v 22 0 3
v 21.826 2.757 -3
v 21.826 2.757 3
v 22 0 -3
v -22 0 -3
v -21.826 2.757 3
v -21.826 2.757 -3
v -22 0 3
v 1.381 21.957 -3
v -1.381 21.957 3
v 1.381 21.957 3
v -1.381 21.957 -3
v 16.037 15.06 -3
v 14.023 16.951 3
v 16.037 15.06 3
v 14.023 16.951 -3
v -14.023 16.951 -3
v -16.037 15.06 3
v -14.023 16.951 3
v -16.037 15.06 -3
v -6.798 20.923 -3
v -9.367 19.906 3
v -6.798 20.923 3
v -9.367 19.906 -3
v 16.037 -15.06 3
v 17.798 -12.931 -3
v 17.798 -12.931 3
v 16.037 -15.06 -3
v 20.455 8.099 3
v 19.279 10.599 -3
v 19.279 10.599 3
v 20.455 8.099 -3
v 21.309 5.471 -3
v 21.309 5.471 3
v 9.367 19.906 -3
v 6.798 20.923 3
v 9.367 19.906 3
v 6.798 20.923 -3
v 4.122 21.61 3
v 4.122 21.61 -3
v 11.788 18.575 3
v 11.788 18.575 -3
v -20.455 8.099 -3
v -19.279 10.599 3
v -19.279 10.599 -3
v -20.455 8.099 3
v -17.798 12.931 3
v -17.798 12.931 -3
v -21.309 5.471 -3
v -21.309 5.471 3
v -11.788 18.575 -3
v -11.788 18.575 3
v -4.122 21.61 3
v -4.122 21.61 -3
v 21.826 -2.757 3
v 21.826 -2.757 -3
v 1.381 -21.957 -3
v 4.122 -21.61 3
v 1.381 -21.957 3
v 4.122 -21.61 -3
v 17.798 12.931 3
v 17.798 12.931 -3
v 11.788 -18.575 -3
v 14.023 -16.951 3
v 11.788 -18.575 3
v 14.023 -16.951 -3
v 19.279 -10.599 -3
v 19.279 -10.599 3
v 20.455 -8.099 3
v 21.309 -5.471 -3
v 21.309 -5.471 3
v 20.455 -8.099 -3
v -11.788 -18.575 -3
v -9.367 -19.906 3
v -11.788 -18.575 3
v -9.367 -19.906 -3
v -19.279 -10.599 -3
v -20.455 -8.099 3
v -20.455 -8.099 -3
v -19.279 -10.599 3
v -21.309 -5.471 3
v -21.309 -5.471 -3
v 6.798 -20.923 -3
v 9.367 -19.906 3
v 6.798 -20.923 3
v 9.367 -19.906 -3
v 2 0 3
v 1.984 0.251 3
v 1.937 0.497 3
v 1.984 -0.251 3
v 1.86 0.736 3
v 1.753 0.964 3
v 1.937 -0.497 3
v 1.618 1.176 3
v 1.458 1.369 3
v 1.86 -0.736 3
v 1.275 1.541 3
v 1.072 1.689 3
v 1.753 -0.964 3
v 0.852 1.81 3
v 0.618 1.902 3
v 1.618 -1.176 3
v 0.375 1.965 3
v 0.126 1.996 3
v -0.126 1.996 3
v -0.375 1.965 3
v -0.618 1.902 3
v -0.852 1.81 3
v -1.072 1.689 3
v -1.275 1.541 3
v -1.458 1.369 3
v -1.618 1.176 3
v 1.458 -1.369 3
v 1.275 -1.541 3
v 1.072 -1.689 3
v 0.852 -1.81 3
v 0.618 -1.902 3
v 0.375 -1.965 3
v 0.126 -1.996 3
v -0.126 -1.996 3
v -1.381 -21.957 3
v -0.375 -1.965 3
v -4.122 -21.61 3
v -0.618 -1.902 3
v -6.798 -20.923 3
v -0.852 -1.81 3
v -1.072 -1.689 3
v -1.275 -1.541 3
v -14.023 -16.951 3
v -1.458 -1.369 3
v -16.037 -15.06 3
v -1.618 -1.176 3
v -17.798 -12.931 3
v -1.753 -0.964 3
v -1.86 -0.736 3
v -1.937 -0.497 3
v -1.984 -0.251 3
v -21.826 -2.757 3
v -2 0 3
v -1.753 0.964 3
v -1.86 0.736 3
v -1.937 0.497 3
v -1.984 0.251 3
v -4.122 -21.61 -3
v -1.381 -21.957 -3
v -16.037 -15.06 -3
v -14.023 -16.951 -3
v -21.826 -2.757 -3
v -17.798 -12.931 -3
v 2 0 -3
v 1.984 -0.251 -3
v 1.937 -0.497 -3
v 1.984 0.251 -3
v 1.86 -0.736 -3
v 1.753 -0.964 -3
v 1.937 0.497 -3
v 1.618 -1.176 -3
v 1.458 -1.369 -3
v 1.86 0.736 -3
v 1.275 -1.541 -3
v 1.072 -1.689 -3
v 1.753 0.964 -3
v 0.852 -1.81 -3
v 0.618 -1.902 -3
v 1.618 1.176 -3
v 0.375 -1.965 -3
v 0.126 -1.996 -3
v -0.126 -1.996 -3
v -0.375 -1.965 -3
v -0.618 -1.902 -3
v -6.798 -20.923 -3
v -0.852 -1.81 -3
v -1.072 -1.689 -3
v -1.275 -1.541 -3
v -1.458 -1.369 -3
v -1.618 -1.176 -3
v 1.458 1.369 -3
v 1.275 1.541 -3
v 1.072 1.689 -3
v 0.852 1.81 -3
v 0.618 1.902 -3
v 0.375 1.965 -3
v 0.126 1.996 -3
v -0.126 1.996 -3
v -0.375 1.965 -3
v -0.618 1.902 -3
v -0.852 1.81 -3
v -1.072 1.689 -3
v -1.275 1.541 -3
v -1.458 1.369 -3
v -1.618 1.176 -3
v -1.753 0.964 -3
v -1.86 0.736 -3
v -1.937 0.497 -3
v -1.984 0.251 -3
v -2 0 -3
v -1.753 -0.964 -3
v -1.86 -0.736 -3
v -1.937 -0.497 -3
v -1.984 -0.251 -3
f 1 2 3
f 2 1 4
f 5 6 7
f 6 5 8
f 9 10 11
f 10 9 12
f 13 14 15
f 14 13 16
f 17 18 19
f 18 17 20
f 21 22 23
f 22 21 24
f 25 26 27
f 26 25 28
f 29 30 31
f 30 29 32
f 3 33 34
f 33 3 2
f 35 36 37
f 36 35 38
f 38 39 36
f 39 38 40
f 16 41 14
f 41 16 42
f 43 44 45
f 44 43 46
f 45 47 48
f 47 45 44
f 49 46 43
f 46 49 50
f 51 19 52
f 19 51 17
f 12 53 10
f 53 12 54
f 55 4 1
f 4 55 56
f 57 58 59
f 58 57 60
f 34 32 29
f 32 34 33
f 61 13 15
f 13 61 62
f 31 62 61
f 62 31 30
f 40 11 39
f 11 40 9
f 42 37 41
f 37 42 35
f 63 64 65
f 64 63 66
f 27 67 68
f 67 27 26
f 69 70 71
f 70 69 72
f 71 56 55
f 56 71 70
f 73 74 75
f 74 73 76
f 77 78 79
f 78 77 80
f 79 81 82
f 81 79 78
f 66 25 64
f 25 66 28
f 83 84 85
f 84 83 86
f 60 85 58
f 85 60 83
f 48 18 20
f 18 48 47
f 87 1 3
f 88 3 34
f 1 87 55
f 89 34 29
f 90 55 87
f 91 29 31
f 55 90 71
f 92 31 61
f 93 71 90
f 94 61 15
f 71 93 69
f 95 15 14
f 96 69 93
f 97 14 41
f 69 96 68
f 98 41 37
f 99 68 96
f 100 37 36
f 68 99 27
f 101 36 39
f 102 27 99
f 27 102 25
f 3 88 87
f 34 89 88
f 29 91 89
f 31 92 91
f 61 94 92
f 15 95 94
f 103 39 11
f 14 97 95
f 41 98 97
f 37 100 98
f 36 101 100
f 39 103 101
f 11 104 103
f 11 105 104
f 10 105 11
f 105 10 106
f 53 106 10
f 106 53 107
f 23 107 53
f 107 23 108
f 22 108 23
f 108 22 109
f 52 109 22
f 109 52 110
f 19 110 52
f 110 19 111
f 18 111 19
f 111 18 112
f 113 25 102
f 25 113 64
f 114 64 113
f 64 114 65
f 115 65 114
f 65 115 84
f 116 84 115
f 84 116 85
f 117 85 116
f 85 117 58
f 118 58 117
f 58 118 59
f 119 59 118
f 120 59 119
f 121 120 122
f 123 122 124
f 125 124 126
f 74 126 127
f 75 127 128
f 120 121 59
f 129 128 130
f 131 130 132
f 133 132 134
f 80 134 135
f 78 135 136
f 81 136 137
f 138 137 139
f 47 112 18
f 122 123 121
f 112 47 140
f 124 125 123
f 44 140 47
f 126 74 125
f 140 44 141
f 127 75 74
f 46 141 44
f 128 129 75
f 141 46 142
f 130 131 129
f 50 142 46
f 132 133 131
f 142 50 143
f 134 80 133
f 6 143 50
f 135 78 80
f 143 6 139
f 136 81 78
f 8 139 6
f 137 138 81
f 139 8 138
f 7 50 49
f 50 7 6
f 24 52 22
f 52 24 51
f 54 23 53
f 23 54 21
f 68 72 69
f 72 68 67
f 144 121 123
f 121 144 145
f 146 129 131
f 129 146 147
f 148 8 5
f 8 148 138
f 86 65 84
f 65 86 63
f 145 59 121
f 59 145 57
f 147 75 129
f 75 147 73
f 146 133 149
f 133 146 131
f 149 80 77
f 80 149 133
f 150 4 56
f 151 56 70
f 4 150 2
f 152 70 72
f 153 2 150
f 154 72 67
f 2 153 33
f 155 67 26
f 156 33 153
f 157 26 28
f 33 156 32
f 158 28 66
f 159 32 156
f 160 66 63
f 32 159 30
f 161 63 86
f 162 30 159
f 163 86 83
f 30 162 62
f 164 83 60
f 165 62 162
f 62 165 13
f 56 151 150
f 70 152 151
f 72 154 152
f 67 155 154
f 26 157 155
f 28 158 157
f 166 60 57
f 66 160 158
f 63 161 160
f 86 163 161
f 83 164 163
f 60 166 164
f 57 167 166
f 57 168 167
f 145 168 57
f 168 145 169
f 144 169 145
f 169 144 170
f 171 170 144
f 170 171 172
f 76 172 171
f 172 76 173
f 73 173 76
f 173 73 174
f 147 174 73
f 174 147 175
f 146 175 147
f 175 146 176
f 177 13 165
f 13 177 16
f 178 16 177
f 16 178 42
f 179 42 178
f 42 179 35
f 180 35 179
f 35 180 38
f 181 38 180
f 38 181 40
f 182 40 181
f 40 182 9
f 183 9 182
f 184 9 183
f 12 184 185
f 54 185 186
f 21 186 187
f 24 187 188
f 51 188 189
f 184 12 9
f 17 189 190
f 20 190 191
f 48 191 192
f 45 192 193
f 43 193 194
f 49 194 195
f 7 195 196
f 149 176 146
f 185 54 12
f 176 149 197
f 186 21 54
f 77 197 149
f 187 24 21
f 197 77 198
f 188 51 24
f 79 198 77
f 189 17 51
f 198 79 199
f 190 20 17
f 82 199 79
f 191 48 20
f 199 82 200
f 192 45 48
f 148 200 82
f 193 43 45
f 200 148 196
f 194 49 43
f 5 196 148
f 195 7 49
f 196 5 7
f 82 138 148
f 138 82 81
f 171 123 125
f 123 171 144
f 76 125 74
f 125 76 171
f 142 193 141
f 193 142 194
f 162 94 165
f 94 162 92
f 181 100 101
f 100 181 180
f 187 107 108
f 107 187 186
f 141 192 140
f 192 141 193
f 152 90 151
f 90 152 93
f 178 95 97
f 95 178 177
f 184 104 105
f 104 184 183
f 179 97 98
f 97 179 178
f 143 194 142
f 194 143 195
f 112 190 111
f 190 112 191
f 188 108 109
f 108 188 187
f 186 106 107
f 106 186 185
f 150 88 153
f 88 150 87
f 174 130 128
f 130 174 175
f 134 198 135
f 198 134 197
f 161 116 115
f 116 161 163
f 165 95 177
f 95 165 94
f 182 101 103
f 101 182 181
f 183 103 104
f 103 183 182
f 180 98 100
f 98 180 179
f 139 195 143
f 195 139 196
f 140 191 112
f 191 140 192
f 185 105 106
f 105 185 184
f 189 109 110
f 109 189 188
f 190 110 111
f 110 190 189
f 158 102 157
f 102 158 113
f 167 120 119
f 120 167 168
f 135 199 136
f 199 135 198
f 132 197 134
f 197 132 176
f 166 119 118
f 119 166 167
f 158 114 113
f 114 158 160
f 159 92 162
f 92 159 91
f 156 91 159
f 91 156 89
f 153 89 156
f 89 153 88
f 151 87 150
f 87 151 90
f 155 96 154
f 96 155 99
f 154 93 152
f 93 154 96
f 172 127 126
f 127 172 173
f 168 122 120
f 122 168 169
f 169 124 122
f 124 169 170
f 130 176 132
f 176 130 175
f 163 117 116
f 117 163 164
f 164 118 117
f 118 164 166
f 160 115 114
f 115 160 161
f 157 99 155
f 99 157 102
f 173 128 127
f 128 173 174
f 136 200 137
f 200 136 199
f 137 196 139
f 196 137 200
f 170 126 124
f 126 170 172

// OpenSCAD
$fn = 50;


difference() {
	union() {
		translate(v = [0, 0, -3.0000000000]) {
			cylinder(h = 6, r = 22.0000000000);
		}
	}
	union() {
		translate(v = [0, 0, -100.0000000000]) {
			cylinder(h = 200, r = 2.0000000000);
		}
	}
}
